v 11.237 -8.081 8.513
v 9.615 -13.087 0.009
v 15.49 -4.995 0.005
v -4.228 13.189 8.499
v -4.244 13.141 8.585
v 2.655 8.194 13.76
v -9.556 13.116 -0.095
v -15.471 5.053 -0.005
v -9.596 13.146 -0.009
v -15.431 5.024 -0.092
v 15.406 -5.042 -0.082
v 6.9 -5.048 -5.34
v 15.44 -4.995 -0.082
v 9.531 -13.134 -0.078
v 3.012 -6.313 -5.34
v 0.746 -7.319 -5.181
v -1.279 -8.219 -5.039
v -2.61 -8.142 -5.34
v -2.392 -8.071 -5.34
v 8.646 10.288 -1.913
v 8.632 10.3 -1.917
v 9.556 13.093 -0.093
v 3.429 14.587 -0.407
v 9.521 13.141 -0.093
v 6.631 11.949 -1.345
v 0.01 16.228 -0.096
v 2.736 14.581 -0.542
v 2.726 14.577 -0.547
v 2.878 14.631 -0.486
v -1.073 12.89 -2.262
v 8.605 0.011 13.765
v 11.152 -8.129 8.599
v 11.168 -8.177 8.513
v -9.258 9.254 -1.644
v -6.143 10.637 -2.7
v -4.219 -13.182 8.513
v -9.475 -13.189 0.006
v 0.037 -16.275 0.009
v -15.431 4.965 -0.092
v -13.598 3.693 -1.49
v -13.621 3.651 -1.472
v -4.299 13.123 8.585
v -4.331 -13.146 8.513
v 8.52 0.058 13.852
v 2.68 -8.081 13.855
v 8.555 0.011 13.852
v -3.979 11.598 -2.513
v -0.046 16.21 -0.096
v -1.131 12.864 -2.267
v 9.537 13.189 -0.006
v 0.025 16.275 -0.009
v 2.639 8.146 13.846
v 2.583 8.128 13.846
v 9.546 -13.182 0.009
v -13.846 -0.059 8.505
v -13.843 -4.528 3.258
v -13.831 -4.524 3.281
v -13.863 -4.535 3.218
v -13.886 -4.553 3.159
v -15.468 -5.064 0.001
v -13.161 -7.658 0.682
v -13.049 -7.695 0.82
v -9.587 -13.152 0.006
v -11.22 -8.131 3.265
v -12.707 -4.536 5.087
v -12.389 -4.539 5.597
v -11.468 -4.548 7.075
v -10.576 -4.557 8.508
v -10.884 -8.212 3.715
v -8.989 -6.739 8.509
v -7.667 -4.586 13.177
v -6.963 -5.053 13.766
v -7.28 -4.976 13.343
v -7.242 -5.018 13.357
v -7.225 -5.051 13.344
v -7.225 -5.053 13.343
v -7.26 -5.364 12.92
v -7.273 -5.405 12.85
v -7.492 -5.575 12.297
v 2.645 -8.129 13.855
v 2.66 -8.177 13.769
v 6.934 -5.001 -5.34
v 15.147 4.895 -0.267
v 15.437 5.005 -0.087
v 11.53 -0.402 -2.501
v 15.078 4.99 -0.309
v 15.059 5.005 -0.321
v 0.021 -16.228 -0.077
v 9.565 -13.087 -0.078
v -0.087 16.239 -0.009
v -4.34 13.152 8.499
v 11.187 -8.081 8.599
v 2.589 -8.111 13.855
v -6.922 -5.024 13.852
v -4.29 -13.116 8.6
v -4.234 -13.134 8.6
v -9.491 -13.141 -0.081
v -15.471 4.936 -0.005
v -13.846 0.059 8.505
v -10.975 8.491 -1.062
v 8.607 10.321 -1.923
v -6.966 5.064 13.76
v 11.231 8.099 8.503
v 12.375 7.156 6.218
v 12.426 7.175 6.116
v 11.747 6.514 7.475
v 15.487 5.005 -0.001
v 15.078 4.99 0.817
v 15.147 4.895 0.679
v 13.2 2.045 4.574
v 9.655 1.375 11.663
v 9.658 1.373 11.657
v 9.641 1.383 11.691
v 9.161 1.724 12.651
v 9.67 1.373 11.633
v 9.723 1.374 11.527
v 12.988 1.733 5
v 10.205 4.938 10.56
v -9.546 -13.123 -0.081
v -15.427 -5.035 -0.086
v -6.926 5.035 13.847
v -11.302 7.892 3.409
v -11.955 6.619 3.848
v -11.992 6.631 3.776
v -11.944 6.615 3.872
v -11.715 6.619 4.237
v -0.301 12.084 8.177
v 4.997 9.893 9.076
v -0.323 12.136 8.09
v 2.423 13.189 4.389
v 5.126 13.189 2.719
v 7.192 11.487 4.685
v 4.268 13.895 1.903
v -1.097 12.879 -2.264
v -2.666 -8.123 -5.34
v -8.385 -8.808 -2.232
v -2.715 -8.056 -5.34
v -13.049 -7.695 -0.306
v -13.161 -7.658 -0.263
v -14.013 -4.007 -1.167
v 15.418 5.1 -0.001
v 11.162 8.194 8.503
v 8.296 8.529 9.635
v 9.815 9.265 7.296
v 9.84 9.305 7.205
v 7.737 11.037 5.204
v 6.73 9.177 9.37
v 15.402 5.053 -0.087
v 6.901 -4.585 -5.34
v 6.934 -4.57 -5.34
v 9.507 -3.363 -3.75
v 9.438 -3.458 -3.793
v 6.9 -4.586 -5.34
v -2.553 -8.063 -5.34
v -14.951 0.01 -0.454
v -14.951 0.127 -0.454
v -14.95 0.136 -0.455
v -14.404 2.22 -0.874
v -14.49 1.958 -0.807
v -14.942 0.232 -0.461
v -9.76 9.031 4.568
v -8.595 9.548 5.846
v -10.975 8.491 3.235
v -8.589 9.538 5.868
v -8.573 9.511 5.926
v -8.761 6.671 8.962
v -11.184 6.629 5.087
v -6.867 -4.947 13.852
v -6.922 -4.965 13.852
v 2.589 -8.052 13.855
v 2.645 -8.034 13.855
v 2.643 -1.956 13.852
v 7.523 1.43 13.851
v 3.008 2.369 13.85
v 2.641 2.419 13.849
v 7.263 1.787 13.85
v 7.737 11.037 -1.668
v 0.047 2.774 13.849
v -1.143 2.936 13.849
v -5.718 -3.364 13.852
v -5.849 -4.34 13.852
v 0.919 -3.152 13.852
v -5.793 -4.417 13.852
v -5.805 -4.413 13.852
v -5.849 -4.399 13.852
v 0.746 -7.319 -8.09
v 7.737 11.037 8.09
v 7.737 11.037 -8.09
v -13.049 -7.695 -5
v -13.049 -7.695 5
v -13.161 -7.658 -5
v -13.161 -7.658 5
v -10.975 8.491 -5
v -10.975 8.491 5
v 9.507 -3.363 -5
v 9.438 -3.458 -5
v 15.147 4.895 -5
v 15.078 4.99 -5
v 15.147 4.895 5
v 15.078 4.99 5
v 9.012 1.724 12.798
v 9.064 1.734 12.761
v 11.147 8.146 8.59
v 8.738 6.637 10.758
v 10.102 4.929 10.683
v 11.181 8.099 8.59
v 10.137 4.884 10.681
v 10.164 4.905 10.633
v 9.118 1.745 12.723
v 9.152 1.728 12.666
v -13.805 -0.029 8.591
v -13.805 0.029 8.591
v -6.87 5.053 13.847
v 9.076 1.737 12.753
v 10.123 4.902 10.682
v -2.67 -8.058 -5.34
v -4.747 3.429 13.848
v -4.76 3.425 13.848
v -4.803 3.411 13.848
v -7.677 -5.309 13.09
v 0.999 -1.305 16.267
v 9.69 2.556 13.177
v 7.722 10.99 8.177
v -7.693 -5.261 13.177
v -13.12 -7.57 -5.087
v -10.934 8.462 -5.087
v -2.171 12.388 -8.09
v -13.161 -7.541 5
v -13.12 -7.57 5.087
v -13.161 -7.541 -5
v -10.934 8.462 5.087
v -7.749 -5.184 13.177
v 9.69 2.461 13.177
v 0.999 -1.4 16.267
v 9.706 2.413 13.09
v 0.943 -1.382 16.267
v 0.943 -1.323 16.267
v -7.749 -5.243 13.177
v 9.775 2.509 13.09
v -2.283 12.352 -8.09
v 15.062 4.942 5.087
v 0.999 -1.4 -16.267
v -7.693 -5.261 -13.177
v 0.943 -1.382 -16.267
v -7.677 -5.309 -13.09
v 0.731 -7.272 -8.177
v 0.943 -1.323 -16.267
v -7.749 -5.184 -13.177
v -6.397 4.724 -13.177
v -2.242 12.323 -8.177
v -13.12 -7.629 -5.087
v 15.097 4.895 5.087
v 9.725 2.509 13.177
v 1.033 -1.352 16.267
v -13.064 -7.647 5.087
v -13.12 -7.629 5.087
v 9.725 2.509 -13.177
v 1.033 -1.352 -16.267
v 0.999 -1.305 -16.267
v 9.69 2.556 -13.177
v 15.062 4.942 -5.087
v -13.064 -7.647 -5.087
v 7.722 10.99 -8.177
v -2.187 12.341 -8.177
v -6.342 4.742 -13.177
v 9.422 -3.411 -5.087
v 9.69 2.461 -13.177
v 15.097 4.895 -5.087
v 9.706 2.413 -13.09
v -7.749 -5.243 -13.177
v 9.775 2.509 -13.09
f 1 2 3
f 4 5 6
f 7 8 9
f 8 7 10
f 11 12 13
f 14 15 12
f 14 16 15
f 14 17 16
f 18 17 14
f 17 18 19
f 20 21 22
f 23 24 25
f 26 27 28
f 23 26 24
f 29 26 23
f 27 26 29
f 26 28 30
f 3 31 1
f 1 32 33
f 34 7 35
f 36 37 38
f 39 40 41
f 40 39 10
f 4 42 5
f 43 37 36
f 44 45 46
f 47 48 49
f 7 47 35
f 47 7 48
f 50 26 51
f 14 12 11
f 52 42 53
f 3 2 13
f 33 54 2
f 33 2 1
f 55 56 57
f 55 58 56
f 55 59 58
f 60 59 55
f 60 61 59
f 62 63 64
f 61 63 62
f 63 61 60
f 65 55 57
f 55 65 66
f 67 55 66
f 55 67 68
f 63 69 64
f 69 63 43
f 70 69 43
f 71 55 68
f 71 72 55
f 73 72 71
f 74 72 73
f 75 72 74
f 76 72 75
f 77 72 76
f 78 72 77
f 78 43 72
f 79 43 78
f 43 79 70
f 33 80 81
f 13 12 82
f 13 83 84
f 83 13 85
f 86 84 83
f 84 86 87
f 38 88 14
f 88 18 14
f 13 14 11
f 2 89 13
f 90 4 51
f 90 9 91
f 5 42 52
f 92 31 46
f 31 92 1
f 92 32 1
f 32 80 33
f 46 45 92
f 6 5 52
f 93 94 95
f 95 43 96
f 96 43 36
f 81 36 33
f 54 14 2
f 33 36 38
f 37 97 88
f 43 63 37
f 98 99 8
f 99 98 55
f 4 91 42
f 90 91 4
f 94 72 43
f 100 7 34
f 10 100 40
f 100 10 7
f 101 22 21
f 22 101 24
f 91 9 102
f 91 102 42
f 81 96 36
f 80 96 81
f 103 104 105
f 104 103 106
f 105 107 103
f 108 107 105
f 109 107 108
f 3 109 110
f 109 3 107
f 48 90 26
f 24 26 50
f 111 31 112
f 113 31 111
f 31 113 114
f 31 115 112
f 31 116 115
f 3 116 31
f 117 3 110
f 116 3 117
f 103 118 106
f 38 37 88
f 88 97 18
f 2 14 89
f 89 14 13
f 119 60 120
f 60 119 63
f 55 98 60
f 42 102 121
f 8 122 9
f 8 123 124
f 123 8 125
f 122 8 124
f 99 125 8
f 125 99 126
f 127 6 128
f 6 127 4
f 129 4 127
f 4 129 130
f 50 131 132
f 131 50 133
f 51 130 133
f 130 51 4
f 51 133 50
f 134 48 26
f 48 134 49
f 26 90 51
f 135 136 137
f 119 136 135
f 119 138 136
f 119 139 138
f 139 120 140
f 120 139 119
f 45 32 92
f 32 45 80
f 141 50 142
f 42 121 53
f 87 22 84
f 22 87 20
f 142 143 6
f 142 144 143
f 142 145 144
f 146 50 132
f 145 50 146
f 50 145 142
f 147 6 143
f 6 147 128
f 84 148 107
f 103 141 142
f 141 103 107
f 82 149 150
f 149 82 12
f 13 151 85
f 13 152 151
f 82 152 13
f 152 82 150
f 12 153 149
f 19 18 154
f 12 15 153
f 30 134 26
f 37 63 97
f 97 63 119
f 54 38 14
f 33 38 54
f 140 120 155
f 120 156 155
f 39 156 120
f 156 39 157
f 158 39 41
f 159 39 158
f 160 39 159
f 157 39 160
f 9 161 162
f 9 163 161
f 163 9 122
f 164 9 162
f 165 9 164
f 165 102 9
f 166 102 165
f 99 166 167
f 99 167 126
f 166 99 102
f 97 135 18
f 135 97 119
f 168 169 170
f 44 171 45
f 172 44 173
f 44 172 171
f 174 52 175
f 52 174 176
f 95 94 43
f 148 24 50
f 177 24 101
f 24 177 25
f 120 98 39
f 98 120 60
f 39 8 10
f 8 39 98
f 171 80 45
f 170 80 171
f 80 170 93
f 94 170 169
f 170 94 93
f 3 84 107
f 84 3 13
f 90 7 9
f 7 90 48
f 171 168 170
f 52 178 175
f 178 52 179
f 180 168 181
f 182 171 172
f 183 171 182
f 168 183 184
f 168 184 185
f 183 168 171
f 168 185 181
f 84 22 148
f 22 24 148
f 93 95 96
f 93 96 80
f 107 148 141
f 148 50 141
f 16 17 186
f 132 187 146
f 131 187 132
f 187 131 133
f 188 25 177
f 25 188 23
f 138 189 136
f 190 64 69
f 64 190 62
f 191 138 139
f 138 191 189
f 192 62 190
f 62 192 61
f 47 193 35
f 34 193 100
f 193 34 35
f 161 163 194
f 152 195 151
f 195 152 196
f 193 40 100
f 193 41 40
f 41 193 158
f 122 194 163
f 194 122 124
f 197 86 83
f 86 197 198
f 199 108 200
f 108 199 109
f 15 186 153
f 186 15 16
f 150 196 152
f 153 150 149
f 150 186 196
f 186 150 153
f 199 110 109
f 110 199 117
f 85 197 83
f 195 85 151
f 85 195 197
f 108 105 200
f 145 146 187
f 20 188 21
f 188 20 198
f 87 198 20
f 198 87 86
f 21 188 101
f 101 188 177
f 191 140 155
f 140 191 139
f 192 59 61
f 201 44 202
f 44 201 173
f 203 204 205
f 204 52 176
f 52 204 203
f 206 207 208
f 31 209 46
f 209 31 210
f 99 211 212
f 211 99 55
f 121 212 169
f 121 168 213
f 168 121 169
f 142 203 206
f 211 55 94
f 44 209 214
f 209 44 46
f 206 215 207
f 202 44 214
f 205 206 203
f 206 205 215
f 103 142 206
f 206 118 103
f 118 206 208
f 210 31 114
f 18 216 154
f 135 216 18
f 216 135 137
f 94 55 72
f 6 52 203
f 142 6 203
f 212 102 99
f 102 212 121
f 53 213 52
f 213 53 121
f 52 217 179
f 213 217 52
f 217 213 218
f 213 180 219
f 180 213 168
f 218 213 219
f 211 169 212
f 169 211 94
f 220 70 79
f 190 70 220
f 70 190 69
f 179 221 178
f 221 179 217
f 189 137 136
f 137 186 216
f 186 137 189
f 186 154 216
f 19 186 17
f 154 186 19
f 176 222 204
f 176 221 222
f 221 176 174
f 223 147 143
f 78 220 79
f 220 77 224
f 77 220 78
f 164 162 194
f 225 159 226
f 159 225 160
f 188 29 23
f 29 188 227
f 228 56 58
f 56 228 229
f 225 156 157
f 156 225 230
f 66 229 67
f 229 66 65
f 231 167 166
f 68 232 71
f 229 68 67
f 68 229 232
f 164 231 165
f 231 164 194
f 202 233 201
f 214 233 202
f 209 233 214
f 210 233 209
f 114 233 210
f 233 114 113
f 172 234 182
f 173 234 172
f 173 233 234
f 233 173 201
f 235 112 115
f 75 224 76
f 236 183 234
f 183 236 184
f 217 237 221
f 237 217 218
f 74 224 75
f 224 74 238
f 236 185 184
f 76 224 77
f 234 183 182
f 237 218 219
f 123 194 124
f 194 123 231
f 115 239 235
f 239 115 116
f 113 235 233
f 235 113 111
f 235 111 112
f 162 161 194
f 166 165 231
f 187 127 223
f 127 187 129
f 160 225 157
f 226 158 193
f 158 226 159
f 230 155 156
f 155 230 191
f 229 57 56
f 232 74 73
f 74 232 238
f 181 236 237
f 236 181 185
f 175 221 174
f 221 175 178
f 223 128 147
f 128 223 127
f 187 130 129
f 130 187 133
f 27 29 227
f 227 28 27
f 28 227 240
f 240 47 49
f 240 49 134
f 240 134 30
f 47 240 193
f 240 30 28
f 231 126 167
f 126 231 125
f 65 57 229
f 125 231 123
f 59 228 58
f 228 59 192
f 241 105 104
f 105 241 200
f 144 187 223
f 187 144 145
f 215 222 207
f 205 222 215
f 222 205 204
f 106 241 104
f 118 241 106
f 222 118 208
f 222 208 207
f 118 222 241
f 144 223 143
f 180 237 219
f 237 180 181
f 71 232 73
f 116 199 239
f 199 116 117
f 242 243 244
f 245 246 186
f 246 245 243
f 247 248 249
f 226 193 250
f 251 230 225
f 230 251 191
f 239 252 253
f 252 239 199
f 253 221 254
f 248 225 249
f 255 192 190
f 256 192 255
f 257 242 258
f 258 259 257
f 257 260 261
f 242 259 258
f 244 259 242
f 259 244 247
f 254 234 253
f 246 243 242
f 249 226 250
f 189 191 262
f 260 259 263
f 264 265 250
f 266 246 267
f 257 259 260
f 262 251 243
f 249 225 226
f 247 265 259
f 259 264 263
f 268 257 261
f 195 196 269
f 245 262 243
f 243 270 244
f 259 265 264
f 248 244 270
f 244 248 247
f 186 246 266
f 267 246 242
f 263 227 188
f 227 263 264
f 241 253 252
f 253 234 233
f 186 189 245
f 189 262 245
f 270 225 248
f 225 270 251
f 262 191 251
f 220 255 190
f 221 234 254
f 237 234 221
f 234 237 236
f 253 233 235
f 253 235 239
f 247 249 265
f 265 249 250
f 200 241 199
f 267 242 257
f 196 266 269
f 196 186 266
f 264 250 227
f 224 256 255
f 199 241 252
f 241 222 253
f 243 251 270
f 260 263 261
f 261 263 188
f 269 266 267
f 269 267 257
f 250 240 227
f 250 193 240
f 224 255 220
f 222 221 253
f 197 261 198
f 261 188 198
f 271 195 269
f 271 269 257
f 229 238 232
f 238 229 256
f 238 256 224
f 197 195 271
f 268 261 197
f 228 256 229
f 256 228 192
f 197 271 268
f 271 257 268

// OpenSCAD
// Auto-generated OpenSCAD file

    inner_points = 10*[[1.504661527029664, 0.48947506274315233, -0.4999999999999145], [-1.3079948667278423, -0.7599647980164363, 0.4999999999999145], [-0.6357029077328671, 0.46948589779540517, -1.3090169943752812], [-0.22020362671136517, 1.2293282153003366, 0.8090169943744602], [0.7706252891456874, 1.09420582817551, -0.8090169943751957], [-1.5048615327414891, 0.08338774737153498, -3.865796571744795e-13], [0.9674919551595329, 0.2508532827872281, -1.3090169943748946], [-1.3079948667276438, -0.759964798016747, -0.5000000000000855], [1.5046615270294654, 0.489475062743463, 0.5000000000000855], [-0.7708252948577115, -0.5213430180605121, 1.3090169943748946], [-0.2202036267110432, 1.2293282152998337, -0.8090169943754346], [-1.0893622517194665, 0.8432300648756529, -0.5000000000005401], [0.09833333015123245, -0.13524486763714477, -1.618033988749895], [-0.7708252948571909, -0.5213430180613257, -1.3090169943750003], [0.9674919551590123, 0.2508532827880416, 1.3090169943750003], [0.098333330150589, -0.13524486763613924, 1.618033988749895], [0.3169659451590877, 1.467949995255758, -4.5458081743277035e-13], [-1.0893622517196655, 0.8432300648759636, 0.4999999999994599], [0.7706252891453657, 1.094205828176013, 0.8090169943746992], [-0.6357029077333877, 0.46948589779621863, 1.3090169943746135], [0.07153360287893762, -0.7224188430740421, -0.8090169943747703], [0.9406922278870392, -0.3363206926493587, 0.5000000000002299], [0.07153360287861593, -0.7224188430735395, 0.8090169943751245], [0.940692227887238, -0.3363206926496693, -0.4999999999997701], [-0.46563596899151527, -0.9610406230294636, 1.444677710793485e-13]];

    outer_points = 10*[[-0.000564910313048521, 1.6180336318009756, -0.0009143233444000093], [0.000564910313048521, -1.6180336318009756, 0.0009143233444000093], [-1.376498108047588, 0.0, 0.8504627841894703], [0.8504625965717973, 0.0010747608291631194, 1.3764978043830696], [-0.4258986806464176, 1.3093488249583056, 0.8498529032449322], [-0.42498463655930974, -1.3086845862361058, 0.8513323094928791], [-0.9515134714882783, 1.3086845862361058, -0.0008695253034087247], [-0.9505994274011704, -1.3093488249583056, 0.0006098809445380104], [0.9505994274011704, 1.3093488249583056, -0.0006098809445380104], [0.9515134714882783, -1.3086845862361058, 0.0008695253034087247], [-0.6885536307365924, 0.5005372701112993, 1.3760052062324764], [-0.688204496962533, -0.49946250928213626, 1.376570289136023], [-1.5390162273083896, 0.49946250928213626, -0.0004925981505932153], [-1.5386670935343303, -0.5005372701112993, 7.248475295340562e-05], [1.5386670935343303, 0.5005372701112993, -7.248475295340562e-05], [1.5390162273083896, -0.49946250928213626, 0.0004925981505932153], [0.2623949304386375, 0.8098863156761693, 1.375960408191485], [0.2629598407516861, -0.8081473161248063, 1.3768747315358851], [1.113117546661972, 0.8098863156761693, 0.8503455013955257], [1.1136824569750208, -0.8081473161248063, 0.8512598247399259], [-0.850578880895062, -0.0005941131744505647, -0.525847139770523], [0.6880882126392683, 0.4999431569368488, -0.5259196245234764], [0.6884373464133277, -0.5000566224565869, -0.5253545416199297], [-0.26307612507495054, 0.8086279637795188, -0.5262240669233383], [-0.26251121476190203, -0.8094056680214567, -0.5253097435789383]];

    // Convex hull for inner set (I)
    module inner_hull() {
        hull() {
            for (p = inner_points) {
                translate(p) sphere(r=0.1);
            }
        }
    }

    // Convex hull for outer set (O) minus inner hull (O \ I)
    module outer_minus_inner() {
        difference() {
            hull() {
                for (p = outer_points) {
                    translate(p) sphere(r=0.1);
                }
            }
            inner_hull(); // Subtract inner hull
        }
    }

    // Convex hull for outer set (O) minus all translated inner hulls
    module outer_minus_AllTranslationInner() {
        difference() {
            hull() {
                for (p = outer_points) {
                    translate(p) sphere(r=0.1);
                }
            }
            hull() {
                translate([0,0,50]) inner_hull();
                translate([0,0,-50]) inner_hull();
            }; // Subtract translated inner hulls
        }
    }

    // Difference between outer_minus_inner and outer_minus_AllTranslationInner
    module outer_minus_inner_diff() {
        difference() {
            // Outer minus inner
            difference() {
                hull() {
                    for (p = outer_points) {
                        translate(p) sphere(r=0.1);
                    }
                }
                inner_hull();
            }

            // Subtract Outer minus AllTranslationInner
            difference() {
                hull() {
                    for (p = outer_points) {
                        translate(p) sphere(r=0.1);
                    }
                }
                hull() {
                    translate([0,0,50]) inner_hull();
                    translate([0,0,-50]) inner_hull();
                };
            }
        }
    }

    // Rendering all with colors applied
    color([1, 0, 0, 0.5]) inner_hull(); // Transparent red
    color([0, 1, 0, 1]) outer_minus_AllTranslationInner(); // Opaque green
    color([1, 1, 0, 1]) outer_minus_inner_diff(); // Opaque yellow
    
